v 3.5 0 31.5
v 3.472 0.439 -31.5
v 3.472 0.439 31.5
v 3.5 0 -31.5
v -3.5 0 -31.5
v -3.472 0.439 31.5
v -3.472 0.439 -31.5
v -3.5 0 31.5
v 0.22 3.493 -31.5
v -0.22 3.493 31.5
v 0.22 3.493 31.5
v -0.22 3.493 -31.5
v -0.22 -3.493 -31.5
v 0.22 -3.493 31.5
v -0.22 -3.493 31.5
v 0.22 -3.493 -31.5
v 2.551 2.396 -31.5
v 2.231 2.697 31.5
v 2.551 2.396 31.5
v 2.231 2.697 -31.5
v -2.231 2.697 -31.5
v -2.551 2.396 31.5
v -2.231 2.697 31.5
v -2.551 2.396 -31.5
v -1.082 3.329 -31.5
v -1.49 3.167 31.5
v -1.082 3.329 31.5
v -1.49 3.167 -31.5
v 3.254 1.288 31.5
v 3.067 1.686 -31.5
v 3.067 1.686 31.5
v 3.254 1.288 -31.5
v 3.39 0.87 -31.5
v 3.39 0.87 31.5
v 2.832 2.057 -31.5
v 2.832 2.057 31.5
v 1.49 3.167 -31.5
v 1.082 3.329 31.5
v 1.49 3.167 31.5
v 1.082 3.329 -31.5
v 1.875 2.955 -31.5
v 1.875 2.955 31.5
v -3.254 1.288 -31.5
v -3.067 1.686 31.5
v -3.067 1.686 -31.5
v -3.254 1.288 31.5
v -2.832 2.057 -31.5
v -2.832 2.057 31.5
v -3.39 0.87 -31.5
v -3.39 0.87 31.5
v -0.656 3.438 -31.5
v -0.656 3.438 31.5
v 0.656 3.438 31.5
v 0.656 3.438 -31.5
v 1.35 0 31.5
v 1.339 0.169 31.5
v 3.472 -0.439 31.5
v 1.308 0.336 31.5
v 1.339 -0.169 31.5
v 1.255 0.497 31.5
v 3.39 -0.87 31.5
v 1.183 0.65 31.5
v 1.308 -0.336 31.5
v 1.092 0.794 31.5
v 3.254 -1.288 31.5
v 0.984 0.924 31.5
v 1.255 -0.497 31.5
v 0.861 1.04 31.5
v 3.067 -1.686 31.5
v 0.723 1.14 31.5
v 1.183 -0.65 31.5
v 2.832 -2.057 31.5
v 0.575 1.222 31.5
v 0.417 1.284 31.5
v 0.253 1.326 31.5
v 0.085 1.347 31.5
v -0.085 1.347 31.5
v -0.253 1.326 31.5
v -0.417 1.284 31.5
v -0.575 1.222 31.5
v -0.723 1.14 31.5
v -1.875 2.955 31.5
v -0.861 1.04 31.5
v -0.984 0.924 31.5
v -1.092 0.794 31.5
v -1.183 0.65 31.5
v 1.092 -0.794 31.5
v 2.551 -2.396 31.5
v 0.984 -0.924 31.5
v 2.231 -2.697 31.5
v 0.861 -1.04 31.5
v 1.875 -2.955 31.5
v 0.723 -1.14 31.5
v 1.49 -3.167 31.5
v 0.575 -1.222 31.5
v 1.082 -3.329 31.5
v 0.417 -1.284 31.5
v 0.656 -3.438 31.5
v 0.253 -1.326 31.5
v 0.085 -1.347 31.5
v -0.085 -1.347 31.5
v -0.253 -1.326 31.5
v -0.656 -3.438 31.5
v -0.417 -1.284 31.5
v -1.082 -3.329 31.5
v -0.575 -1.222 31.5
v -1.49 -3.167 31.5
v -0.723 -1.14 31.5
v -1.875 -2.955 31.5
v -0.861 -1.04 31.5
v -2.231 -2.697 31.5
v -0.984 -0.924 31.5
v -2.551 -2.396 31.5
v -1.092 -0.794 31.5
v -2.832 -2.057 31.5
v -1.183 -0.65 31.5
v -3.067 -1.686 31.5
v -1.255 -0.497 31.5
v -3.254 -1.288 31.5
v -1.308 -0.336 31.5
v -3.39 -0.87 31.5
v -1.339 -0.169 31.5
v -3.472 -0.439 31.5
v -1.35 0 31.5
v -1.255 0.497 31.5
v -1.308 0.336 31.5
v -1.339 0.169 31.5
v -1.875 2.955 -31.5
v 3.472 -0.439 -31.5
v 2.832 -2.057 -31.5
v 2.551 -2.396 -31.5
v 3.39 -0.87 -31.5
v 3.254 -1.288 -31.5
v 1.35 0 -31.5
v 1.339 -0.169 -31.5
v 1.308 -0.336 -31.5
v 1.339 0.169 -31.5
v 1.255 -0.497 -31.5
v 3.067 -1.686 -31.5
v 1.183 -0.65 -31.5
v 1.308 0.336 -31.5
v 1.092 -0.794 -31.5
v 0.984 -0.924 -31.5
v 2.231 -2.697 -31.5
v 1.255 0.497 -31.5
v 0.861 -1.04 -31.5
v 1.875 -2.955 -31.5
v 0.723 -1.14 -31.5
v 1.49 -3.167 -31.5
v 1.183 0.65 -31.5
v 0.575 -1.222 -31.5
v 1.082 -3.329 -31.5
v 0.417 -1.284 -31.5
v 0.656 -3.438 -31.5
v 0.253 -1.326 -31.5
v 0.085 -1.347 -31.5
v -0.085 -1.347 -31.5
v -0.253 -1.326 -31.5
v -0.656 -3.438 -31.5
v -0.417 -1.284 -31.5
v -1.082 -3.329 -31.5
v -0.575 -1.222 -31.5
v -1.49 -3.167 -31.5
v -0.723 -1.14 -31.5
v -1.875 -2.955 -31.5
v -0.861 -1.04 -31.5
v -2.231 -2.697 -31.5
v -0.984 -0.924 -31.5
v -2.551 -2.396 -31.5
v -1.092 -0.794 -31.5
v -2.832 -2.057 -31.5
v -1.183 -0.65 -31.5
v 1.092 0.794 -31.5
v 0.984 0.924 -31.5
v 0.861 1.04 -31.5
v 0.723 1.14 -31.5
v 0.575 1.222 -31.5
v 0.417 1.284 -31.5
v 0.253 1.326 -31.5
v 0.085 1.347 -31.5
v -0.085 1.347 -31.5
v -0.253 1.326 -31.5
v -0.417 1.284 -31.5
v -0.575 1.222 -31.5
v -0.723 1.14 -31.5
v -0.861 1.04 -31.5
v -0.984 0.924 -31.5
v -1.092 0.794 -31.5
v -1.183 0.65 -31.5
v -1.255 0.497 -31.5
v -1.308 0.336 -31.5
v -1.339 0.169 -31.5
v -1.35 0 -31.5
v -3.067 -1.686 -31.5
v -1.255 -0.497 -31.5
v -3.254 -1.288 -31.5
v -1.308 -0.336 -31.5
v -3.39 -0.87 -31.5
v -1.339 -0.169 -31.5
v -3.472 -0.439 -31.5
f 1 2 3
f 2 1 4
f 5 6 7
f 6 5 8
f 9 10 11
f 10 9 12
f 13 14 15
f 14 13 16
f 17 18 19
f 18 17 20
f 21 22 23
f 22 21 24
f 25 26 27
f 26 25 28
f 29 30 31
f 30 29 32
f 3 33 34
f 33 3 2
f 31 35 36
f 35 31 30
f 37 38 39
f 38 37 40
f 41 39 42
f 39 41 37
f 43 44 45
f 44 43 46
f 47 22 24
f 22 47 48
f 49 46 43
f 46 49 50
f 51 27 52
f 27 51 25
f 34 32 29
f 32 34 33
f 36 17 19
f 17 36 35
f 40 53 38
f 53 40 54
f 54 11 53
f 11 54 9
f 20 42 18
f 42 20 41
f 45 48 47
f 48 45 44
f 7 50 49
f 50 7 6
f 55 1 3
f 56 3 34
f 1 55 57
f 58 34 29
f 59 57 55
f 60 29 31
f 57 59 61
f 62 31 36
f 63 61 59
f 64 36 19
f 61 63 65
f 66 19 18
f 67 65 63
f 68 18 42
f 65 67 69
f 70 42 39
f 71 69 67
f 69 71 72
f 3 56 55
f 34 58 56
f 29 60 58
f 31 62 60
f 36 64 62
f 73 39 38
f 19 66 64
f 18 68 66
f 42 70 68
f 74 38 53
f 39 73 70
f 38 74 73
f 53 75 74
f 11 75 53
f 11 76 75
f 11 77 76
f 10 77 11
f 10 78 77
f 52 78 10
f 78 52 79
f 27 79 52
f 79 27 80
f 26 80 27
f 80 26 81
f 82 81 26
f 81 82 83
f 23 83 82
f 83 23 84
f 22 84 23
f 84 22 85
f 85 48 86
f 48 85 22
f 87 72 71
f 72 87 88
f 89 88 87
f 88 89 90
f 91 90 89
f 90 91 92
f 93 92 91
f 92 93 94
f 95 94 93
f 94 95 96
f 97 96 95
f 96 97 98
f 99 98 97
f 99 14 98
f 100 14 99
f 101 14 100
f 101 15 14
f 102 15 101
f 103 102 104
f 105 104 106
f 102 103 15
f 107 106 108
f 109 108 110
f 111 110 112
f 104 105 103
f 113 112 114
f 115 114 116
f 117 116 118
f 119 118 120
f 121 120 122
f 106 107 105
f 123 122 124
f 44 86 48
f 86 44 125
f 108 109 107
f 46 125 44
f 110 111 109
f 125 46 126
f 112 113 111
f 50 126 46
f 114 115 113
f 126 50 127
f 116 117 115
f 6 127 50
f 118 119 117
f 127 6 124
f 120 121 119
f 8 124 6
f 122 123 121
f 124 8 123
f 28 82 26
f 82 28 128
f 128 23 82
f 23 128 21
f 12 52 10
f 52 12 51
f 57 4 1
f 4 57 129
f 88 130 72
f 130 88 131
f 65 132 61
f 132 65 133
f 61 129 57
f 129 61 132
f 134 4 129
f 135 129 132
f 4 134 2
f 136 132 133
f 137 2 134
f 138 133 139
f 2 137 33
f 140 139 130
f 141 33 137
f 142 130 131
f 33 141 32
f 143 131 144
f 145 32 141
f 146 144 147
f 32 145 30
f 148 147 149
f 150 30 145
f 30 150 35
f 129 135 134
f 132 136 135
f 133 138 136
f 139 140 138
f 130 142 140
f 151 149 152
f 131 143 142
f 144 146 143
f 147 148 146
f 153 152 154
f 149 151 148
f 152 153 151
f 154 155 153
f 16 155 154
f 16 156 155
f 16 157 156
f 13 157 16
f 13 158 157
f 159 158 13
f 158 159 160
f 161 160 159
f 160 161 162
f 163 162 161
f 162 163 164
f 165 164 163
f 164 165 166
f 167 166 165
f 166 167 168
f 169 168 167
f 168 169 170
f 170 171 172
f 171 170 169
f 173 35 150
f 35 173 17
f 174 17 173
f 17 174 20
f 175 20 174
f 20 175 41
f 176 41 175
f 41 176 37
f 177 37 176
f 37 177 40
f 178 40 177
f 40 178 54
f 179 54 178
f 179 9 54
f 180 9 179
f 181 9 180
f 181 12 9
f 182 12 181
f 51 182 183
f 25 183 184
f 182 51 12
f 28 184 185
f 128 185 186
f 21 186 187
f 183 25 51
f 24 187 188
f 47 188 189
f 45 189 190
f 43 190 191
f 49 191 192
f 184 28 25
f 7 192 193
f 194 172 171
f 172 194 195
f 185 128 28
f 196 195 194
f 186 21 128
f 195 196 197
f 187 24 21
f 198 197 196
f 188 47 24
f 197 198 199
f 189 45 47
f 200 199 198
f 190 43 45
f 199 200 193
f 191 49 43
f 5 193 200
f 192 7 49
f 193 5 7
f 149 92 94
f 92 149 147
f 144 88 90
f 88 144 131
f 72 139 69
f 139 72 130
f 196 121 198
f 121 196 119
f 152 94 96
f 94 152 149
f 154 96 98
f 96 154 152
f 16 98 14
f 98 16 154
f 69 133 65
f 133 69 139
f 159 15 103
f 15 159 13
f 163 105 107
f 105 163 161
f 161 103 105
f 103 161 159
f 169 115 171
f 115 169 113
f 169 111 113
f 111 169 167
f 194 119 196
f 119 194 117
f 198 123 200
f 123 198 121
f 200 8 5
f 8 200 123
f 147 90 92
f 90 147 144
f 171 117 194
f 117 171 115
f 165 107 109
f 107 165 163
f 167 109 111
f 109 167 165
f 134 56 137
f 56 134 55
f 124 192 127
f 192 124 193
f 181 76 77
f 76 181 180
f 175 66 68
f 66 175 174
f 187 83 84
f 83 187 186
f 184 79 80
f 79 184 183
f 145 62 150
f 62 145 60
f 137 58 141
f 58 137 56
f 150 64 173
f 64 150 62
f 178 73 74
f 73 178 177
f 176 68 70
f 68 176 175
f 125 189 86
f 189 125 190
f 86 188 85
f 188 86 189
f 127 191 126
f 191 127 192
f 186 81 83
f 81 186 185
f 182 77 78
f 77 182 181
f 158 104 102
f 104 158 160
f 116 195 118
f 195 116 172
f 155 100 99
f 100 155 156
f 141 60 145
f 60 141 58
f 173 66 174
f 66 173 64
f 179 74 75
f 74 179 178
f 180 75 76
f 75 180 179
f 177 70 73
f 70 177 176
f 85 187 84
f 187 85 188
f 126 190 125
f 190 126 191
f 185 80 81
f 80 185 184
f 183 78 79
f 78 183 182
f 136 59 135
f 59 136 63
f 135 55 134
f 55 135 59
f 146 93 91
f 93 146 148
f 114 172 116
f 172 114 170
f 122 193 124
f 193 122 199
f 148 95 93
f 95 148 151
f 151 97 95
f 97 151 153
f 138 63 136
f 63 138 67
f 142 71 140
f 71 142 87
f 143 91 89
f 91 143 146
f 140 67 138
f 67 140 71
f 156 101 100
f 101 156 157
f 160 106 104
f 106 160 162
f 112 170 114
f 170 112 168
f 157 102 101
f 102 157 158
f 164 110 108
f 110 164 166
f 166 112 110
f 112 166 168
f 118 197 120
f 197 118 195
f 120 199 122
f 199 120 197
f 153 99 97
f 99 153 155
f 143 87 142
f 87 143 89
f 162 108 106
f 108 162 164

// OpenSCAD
$fn = 50;


difference() {
	union() {
		translate(v = [0, 0, -31.5000000000]) {
			cylinder(h = 63, r = 3.5000000000);
		}
	}
	union() {
		translate(v = [0, 0, -100.0000000000]) {
			cylinder(h = 200, r = 1.3500000000);
		}
	}
}
